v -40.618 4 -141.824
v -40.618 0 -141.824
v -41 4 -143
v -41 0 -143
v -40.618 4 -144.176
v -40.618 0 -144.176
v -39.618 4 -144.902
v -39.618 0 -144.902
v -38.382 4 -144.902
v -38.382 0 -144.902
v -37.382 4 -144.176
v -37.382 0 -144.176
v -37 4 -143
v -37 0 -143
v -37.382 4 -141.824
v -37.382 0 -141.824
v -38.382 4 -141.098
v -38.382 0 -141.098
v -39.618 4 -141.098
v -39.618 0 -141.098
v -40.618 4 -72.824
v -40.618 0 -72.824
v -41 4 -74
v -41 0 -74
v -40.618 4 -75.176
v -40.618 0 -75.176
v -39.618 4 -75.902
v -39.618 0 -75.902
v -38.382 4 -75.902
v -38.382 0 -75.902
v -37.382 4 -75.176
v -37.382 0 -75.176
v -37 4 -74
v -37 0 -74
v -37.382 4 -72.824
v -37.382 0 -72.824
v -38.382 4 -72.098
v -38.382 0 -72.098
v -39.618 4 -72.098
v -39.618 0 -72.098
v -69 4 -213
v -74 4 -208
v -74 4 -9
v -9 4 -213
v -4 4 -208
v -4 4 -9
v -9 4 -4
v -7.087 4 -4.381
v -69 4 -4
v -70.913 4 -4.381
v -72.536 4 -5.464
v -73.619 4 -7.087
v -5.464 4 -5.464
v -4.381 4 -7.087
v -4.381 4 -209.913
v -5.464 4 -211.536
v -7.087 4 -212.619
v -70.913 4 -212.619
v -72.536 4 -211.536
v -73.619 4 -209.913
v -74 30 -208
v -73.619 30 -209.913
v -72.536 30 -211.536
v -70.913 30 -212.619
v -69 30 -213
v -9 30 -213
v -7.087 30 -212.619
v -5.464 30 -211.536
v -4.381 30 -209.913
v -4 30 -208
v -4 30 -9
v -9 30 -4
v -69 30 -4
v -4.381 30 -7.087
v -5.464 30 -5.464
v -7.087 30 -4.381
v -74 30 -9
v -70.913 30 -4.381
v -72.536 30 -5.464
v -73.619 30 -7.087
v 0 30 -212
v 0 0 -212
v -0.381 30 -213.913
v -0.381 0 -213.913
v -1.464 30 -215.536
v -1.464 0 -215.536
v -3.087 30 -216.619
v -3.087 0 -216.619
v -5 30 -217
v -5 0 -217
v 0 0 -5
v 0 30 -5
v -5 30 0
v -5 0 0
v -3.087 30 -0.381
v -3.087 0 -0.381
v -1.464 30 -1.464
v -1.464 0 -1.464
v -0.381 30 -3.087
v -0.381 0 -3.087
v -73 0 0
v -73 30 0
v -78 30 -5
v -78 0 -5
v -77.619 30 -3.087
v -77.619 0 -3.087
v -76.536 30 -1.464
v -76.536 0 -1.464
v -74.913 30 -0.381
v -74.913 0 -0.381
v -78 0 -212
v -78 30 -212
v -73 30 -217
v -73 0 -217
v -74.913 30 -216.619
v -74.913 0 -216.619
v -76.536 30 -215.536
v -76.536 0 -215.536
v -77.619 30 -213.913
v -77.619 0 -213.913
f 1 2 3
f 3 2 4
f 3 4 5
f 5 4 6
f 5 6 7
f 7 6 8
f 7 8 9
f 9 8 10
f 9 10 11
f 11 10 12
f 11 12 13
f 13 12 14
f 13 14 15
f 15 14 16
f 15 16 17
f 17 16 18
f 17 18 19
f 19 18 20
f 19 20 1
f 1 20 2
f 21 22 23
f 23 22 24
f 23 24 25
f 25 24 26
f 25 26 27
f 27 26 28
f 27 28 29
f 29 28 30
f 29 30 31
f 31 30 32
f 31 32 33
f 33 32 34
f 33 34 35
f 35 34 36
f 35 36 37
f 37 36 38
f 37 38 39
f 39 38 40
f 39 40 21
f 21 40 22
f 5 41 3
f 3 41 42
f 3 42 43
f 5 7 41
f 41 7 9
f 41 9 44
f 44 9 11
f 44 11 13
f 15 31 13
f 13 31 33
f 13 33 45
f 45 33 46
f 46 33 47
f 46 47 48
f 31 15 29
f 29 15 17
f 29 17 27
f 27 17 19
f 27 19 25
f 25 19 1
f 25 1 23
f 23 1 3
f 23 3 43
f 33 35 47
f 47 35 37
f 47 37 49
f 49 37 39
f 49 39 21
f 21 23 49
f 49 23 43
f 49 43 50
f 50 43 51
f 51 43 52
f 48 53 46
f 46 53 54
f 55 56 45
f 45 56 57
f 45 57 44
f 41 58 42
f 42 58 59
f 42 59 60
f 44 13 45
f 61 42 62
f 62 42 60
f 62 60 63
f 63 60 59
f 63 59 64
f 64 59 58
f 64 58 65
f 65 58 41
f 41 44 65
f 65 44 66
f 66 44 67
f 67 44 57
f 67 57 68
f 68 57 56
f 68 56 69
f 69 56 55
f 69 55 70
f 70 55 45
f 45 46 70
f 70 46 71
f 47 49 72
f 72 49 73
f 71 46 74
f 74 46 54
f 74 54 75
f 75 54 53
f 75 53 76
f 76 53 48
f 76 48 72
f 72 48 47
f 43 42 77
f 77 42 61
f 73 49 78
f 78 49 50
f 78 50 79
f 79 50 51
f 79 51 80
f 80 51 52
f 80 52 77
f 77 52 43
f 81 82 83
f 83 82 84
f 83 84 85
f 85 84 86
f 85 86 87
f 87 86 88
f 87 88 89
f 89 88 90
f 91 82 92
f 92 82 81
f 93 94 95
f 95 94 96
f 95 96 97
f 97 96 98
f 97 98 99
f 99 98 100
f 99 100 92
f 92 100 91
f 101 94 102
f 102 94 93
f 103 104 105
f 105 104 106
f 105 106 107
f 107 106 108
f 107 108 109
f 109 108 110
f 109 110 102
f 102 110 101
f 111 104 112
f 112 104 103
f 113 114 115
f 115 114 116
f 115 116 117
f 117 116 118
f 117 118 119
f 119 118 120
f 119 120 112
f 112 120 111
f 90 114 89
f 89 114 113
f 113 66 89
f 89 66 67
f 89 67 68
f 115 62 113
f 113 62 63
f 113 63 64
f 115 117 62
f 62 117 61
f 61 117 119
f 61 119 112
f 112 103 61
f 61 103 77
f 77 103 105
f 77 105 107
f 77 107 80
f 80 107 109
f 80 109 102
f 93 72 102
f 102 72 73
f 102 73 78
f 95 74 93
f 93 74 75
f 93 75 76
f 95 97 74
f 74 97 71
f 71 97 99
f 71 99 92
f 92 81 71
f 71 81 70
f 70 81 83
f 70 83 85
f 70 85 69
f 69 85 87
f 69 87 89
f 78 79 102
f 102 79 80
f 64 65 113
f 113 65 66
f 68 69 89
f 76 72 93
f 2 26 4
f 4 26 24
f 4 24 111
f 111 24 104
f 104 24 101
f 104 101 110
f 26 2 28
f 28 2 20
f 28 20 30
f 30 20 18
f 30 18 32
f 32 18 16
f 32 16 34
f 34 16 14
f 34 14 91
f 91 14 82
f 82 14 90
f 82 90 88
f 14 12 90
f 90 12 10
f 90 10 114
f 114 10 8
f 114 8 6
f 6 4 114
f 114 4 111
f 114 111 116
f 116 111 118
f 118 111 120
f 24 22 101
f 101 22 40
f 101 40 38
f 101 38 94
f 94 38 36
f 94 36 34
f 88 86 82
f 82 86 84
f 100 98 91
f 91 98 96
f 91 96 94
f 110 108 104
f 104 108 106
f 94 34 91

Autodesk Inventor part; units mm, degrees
ref_plane "YZ Plane" through (0, 0, 0) normal (1, 0, 0) x (0, 1, 0)
ref_plane "XZ Plane" through (0, 0, 0) normal (0, 1, 0) x (-1, 0, 0)
ref_plane "XY Plane" through (0, 0, 0) normal (0, 0, 1) x (1, 0, 0)
sketch "Sketch1" plane through (0, 0, 0) normal (0, 1, 0) x (-1, 0, 0)
  line L0 (5, 0) -> (73, 0)
  line L1 (78, -5) -> (78, -212)
  line L2 (73, -217) -> (5, -217)
  line L3 (0, -212) -> (0, -5)
  line L4 (69, -4) -> (9, -4)
  line L5 (4, -9) -> (4, -208)
  line L6 (9, -213) -> (69, -213)
  line L7 (74, -208) -> (74, -9)
  line L8 (74, -4) -> (4, -213) construction
  line L9 (4, -4) -> (74, -213) construction
  arc A0 (78, -5) -> (73, 0) centre (73, -5) ccw
  arc A1 (5, 0) -> (0, -5) centre (5, -5) ccw
  arc A2 (73, -217) -> (78, -212) centre (73, -212) ccw
  arc A3 (0, -212) -> (5, -217) centre (5, -212) ccw
  arc A4 (74, -9) -> (69, -4) centre (69, -9) ccw
  arc A5 (9, -4) -> (4, -9) centre (9, -9) ccw
  arc A6 (69, -213) -> (74, -208) centre (69, -208) ccw
  arc A7 (4, -208) -> (9, -213) centre (9, -208) ccw
  circle A8 centre (39, -143) radius 2
  line L10 (39, -108.5) -> (37, -108.5)
  circle A9 centre (39, -74) radius 2
  point P0 (0, 0)
  point P1 (78, -217)
  point P2 (78, 0)
  point P3 (0, -217)
  dimension "d0" = 78
  dimension "d1" = 217
  dimension "d2" = 70
  dimension "d3" = 209
  dimension "d4" = 5
  dimension "d5" = 5
  dimension "d10" = 4
  dimension "d14" = 69
extrude "Extrusion1" add sketch "Sketch1" along normal blind 30 contours L0 A0 L1 A2 L2 A3 L3 A1
extrude "Extrusion2" add sketch "Sketch1" along normal blind 4 contours A4 L7 A6 L6 A7 L5 A5 L4 | A8 | A9
extrude "Extrusion3" cut sketch "Sketch1" along normal blind 4 contours A8 | A9
properties part number "Kepala"
